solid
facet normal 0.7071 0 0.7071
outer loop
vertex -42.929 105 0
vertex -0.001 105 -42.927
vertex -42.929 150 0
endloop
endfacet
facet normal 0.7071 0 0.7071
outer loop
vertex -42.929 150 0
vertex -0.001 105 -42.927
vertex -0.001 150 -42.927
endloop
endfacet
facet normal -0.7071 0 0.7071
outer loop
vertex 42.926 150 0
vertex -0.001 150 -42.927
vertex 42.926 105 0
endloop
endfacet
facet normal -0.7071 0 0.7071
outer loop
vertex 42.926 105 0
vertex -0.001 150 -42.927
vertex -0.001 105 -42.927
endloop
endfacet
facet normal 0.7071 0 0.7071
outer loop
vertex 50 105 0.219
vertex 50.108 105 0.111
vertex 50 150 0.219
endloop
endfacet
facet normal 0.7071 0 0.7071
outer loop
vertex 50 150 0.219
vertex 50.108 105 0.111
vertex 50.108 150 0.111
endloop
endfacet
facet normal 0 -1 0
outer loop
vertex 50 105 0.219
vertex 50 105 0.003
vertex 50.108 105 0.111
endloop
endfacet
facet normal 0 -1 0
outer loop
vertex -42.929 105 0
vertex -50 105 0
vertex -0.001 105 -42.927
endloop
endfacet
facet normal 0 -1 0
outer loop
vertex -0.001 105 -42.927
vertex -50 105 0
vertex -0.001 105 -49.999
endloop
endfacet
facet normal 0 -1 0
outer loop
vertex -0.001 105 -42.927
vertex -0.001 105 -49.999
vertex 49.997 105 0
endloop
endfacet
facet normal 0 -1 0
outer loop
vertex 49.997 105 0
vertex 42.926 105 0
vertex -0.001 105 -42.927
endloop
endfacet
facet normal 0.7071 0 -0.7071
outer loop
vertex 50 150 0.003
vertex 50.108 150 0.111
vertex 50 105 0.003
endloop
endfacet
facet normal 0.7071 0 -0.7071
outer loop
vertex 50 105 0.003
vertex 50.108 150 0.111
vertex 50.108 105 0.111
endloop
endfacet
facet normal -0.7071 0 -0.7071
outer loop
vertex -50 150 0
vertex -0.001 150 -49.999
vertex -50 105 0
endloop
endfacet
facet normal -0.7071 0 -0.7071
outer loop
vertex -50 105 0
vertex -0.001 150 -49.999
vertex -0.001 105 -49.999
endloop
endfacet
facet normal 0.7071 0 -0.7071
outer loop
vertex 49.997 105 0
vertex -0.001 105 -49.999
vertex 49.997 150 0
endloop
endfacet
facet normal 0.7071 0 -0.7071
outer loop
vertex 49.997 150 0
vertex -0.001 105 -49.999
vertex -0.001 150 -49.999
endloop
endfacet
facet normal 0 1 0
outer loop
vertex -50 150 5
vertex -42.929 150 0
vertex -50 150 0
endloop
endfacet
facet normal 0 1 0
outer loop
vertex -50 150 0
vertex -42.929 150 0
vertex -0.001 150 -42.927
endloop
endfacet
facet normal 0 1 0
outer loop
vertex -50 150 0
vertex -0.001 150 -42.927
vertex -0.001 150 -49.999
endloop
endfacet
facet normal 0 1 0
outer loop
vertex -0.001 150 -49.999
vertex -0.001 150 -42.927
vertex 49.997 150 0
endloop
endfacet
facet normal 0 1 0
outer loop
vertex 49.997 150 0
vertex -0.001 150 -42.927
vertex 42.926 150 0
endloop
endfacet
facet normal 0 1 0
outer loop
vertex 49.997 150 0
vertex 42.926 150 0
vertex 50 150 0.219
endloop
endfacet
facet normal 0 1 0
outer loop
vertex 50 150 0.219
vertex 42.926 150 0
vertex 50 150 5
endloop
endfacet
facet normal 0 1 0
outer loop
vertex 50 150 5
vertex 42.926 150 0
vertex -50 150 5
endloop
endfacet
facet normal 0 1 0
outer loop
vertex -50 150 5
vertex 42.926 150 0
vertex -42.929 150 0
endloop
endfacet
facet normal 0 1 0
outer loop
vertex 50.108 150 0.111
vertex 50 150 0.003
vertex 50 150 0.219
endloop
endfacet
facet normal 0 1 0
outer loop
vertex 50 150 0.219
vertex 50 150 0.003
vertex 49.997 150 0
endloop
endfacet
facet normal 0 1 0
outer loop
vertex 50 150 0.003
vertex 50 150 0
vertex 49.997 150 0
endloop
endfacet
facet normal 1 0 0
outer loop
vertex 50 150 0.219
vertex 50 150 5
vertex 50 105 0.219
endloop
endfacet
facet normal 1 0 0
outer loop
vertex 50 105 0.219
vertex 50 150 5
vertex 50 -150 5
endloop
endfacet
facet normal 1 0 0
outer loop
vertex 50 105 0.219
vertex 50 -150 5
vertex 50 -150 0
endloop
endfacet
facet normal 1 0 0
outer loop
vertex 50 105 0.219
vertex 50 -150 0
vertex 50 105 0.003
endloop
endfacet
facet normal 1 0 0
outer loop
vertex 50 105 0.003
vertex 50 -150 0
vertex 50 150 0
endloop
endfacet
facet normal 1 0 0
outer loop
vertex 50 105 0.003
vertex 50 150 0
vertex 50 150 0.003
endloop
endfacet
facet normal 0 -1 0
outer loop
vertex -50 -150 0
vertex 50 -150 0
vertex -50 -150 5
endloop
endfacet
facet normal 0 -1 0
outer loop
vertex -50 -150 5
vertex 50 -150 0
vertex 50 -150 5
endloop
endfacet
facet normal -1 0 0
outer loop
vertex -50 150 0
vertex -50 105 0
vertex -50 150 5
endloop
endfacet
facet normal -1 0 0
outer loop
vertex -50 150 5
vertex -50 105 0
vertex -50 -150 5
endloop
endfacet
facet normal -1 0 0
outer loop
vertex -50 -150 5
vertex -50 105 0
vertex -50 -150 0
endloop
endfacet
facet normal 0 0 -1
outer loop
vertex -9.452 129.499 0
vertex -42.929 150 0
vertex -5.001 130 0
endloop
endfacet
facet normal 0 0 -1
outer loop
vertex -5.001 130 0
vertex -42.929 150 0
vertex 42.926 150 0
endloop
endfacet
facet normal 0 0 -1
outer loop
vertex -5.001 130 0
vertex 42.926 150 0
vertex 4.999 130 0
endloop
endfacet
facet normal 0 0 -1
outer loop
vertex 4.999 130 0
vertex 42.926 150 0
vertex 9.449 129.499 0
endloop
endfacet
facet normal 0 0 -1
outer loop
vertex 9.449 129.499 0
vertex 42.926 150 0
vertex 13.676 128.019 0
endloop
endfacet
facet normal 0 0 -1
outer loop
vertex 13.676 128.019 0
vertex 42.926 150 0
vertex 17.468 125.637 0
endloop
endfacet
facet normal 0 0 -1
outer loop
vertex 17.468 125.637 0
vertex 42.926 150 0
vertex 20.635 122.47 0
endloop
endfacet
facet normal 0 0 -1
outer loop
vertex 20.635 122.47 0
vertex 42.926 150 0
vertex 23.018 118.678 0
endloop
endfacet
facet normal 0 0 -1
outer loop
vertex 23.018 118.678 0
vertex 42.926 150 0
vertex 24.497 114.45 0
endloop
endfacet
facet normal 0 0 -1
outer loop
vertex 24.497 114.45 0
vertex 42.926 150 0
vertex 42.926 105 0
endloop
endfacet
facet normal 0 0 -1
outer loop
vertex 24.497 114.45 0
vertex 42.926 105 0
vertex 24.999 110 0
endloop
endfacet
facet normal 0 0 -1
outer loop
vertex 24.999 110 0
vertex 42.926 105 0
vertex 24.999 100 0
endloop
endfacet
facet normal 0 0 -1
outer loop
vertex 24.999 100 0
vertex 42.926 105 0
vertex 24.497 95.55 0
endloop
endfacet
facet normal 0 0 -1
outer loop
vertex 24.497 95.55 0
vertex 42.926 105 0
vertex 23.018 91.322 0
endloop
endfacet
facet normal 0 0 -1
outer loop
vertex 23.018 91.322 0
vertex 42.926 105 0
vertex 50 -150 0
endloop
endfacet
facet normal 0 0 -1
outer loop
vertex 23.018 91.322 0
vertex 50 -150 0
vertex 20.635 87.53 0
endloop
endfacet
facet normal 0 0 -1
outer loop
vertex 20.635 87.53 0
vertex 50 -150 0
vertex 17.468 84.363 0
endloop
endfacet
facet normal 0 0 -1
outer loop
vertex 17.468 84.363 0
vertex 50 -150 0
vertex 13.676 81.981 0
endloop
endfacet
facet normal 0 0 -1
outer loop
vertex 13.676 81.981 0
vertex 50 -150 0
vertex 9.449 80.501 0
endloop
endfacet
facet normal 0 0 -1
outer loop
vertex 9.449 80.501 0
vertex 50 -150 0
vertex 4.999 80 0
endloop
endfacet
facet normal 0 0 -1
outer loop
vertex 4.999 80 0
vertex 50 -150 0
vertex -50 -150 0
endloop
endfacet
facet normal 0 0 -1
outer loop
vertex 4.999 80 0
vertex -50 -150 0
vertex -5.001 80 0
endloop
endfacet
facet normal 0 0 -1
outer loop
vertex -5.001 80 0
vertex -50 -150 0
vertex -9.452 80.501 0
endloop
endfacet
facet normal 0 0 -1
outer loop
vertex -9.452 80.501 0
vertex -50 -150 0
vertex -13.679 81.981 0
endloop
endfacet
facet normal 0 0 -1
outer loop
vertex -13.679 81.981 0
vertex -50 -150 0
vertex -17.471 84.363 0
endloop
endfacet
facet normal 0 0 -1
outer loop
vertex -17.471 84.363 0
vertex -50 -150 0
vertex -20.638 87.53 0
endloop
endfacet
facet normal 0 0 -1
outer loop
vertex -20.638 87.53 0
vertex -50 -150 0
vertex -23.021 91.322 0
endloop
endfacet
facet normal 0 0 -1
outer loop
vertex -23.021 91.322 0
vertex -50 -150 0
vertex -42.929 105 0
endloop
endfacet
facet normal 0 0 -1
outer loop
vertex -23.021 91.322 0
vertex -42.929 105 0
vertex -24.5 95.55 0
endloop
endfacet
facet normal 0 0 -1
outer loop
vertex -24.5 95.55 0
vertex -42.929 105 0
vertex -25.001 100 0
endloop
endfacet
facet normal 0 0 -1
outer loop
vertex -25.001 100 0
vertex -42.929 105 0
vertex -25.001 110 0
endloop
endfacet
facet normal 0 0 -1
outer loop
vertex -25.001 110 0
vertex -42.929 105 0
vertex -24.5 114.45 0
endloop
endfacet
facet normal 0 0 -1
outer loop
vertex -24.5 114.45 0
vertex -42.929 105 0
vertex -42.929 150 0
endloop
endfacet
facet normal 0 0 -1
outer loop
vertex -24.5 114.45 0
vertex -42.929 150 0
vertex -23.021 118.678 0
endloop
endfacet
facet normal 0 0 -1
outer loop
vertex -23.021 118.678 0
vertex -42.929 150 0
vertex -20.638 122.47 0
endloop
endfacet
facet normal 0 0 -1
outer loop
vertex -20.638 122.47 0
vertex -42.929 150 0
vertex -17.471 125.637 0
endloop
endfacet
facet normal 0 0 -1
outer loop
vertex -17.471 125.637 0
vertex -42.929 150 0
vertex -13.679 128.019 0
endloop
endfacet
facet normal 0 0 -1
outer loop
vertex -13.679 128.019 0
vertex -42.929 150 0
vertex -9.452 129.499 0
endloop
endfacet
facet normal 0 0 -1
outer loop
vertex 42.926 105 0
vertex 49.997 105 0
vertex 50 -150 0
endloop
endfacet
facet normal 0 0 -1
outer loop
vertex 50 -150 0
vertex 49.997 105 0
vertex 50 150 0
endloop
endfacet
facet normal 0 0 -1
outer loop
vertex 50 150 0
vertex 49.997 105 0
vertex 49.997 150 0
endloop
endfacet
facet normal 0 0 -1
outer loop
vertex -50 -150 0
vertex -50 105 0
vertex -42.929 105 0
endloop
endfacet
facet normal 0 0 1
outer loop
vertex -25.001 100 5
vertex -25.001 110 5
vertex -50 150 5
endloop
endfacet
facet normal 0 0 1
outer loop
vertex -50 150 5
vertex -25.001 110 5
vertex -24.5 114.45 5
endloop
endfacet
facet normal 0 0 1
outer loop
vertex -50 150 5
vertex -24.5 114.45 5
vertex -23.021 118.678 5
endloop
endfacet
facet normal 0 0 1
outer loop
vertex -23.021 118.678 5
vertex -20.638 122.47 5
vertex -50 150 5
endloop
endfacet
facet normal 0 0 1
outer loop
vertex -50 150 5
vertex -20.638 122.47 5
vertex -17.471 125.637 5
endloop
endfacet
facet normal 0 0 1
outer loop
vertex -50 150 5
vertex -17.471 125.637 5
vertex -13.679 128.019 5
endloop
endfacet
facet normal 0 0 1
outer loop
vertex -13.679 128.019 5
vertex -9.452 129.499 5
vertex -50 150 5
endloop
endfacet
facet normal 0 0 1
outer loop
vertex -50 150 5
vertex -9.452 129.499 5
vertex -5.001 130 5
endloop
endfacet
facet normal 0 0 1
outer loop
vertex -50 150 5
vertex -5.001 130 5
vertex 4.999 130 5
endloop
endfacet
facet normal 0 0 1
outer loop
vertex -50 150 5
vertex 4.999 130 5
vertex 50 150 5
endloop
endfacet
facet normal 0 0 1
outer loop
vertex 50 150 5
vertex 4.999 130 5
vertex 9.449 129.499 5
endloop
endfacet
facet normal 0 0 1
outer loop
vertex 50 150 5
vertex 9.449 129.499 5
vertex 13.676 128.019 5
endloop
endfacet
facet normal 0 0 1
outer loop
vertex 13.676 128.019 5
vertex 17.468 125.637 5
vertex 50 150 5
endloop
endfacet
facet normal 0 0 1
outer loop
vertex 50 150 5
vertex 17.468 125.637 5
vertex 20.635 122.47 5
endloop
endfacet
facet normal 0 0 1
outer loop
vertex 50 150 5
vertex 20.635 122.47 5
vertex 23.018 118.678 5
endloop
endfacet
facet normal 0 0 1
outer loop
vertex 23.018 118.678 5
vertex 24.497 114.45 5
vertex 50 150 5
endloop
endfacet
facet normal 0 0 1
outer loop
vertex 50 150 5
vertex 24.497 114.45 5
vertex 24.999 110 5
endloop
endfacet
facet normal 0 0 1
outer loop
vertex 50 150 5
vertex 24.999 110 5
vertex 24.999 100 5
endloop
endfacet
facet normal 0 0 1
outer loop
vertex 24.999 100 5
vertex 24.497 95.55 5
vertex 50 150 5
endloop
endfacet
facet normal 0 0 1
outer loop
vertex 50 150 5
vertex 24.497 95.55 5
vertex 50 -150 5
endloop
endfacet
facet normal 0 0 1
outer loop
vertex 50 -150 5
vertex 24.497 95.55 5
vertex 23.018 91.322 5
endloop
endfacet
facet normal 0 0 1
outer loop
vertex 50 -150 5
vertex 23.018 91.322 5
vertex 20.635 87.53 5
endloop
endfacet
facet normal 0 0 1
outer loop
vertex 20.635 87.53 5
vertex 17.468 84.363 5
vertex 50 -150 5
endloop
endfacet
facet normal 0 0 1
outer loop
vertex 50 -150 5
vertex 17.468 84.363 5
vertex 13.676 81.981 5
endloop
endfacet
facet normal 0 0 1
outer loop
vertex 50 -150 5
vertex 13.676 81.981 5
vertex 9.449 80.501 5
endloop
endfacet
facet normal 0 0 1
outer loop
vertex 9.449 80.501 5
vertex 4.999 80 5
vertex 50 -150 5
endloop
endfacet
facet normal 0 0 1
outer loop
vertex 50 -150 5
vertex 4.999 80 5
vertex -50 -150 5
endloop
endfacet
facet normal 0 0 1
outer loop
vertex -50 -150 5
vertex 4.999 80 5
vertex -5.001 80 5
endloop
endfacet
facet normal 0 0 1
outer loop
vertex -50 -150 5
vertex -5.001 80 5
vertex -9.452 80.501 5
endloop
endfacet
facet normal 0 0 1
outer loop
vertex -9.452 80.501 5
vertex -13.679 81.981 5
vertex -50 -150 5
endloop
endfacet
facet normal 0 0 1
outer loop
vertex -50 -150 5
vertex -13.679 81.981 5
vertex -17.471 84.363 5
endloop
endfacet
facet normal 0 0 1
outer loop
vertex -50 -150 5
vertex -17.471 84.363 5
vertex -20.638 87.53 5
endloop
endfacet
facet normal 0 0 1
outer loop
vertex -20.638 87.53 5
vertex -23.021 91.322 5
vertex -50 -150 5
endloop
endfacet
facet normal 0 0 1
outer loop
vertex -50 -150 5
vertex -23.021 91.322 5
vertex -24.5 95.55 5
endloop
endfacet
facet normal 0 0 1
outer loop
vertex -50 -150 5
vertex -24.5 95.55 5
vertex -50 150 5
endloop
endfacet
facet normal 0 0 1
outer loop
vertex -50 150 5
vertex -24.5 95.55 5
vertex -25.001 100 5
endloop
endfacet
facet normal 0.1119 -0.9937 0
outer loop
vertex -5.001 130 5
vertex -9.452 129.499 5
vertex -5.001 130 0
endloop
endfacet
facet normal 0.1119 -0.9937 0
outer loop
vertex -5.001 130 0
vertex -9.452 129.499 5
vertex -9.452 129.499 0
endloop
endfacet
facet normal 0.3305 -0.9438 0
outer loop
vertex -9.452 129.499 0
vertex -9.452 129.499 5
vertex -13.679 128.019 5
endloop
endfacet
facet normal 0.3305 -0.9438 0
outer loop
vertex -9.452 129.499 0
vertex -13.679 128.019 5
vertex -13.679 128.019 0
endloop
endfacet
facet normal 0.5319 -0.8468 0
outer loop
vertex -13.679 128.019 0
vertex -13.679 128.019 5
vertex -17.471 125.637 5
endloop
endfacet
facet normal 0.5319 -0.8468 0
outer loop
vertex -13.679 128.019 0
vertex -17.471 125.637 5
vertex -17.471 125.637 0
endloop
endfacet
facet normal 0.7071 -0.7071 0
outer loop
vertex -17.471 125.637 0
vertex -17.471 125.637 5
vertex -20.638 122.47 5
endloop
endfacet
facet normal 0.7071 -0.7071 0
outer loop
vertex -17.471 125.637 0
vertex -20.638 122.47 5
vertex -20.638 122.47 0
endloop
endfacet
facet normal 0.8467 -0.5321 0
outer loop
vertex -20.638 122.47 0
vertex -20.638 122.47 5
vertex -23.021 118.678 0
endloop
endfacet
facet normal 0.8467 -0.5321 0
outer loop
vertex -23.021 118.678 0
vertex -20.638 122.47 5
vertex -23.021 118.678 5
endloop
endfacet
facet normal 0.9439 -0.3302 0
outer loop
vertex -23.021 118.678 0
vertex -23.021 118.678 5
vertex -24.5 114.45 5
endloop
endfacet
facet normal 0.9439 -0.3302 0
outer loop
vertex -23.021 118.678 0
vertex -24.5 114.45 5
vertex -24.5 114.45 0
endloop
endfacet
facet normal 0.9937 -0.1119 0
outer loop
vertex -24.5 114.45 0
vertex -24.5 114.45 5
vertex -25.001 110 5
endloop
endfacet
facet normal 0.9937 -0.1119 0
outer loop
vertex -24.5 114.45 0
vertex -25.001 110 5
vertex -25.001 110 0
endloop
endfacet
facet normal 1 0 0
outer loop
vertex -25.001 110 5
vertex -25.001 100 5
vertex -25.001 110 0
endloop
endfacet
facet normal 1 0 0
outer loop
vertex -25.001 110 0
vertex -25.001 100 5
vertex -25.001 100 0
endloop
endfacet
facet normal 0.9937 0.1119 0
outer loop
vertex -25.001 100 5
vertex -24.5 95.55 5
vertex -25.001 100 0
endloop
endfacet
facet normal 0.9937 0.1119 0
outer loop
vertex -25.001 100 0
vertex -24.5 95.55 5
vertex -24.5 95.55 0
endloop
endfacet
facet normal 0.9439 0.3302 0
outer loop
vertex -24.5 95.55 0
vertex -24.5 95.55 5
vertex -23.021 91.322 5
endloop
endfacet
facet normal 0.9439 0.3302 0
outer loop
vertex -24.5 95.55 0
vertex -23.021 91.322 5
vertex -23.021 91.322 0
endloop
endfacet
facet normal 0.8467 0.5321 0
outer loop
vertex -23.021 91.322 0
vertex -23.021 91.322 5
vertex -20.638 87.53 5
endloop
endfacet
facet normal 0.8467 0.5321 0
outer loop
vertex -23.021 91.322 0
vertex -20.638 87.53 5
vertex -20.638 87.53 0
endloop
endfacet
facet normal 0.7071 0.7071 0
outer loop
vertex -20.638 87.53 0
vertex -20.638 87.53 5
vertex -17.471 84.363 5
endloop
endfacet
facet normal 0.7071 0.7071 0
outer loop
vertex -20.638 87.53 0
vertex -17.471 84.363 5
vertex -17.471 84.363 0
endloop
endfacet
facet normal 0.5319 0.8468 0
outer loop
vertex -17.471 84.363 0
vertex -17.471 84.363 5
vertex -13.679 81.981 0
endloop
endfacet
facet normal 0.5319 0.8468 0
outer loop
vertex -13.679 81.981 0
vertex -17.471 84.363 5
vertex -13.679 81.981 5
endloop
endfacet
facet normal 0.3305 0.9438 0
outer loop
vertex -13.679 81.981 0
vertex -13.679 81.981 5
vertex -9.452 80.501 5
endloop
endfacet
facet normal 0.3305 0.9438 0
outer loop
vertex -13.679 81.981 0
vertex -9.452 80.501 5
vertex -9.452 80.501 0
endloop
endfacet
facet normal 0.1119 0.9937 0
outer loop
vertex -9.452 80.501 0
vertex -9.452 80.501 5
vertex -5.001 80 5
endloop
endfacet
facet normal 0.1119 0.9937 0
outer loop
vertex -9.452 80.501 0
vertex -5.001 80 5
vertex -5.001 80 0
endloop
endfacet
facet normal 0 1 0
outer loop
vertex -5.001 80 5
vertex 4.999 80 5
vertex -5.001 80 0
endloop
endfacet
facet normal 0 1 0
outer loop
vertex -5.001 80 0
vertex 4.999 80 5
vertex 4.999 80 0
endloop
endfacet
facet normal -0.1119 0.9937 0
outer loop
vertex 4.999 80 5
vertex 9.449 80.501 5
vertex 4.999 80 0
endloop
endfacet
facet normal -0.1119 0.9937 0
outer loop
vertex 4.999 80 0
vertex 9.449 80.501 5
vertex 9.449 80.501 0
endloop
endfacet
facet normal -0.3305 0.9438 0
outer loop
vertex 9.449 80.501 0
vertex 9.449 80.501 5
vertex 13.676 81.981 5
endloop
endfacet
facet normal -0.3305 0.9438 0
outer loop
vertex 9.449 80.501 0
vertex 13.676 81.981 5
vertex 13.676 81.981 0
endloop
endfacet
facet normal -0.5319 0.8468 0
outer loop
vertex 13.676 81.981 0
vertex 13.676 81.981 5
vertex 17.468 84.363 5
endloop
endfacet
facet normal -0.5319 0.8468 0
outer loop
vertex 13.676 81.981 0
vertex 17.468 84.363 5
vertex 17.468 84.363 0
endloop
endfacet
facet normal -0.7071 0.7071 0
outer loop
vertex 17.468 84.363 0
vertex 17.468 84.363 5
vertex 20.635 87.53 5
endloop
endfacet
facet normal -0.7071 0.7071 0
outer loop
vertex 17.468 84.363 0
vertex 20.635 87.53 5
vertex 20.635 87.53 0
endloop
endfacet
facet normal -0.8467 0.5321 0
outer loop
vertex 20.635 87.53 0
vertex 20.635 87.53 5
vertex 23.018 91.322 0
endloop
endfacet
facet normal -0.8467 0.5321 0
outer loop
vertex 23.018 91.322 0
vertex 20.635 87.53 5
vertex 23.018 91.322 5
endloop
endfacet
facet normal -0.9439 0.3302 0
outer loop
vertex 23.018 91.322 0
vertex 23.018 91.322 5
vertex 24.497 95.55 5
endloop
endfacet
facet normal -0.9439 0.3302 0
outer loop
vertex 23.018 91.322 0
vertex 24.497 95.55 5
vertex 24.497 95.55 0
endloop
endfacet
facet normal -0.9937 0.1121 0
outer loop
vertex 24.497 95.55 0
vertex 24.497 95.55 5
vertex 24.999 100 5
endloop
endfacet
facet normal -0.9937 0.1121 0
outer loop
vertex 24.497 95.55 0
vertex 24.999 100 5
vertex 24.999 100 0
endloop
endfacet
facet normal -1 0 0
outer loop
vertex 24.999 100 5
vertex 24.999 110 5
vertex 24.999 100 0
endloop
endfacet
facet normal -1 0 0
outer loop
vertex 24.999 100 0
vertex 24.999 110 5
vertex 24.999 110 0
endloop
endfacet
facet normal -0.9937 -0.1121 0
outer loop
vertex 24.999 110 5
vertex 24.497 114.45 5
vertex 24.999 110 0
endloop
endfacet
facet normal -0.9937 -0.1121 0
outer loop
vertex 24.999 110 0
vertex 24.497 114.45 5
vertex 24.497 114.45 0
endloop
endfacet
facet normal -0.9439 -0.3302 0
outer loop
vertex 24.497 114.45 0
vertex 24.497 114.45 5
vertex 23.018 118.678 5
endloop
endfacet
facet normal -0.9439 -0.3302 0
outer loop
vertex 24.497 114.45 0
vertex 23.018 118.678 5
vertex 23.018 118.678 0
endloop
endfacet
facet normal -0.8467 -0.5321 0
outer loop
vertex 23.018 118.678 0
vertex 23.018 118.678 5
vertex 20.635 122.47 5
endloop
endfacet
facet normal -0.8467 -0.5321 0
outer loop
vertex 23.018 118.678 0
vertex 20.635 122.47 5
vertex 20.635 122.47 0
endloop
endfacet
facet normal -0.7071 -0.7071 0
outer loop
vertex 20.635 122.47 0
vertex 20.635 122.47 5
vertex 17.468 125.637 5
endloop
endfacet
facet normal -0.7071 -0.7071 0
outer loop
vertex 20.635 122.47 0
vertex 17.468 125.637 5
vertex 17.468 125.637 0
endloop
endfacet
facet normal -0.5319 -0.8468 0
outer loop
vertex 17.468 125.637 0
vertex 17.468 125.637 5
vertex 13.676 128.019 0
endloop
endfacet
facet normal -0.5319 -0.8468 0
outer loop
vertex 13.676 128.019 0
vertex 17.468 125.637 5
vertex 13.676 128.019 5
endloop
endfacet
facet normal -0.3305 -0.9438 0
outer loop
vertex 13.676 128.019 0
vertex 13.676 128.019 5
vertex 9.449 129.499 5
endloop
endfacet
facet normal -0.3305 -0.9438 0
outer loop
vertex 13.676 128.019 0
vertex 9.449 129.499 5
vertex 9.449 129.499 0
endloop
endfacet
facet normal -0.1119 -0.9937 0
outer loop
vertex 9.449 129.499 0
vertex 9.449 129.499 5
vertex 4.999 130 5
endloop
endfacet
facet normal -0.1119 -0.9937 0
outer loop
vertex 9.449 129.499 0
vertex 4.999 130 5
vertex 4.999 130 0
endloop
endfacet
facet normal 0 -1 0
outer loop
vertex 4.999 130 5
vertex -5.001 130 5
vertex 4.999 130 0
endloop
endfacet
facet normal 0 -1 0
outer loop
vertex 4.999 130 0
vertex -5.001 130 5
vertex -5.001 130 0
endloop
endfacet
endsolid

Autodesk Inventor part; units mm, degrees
ref_plane "YZ Plane" through (0, 0, 0) normal (1, 0, 0) x (0, 1, 0)
ref_plane "XZ Plane" through (0, 0, 0) normal (0, 1, 0) x (-1, 0, 0)
ref_plane "XY Plane" through (0, 0, 0) normal (0, 0, 1) x (1, 0, 0)
sketch "Sketch1" plane through (0, 0, 0) normal (0, 0, 1) x (1, 0, 0)
  line L0 (-50, -150) -> (50, -150)
  line L1 (50, -150) -> (50, 150)
  line L2 (50, 150) -> (-50, 150)
  line L3 (-50, 150) -> (-50, -150)
  line L4 (-50, -150) -> (50, 150) construction
  line L5 (50, -150) -> (-50, 150) construction
  point P0 (0, 0)
  dimension "d0" = 100
  dimension "d1" = 300
extrude "Extrusion1" add sketch "Sketch1" along normal blind 5
sketch "Sketch2" plane through (-50, 150, 0) normal (0, 1, 0) x (1, 0, 0)
  line L0 (0, 0) -> (100, 0) projected
  line L1 (0, 0) -> (49.9986, 49.9986)
  line L2 (49.9986, 49.9986) -> (53.5341, 46.463)
  line L3 (53.5341, 46.463) -> (3.5355, -3.5355)
  line L4 (3.5355, -3.5355) -> (0, 0)
  line L5 (0, 0) -> (70.7086, 0) construction
  line L6 (100.108, -0.1109) -> (53.5341, 46.463)
  line L7 (53.5341, 46.463) -> (49.9986, 42.9275)
  line L8 (49.9986, 42.9275) -> (96.5724, -3.6464)
  line L9 (96.5724, -3.6464) -> (100.108, -0.1109)
  point P0 (50, 0)
  point P1 (49.9986, 42.9275)
  dimension "d4" = 45
  dimension "d5" = 5
  dimension "d6" = 5
extrude "Extrusion2" add sketch "Sketch2" against normal blind 45 contours L1 L2 L3 L0 | L0 L3 L4 | L8 L3 L6 L0 | L0 L6 L9 L8
sketch "Sketch6" plane through (0, 0, 5) normal (0, 0, 1) x (1, 0, 0)
  line L0 (4.9986, 80) -> (-5.0014, 80)
  line L1 (-25.0014, 100) -> (-25.0014, 110)
  line L2 (-5.0014, 130) -> (4.9986, 130)
  line L3 (24.9986, 110) -> (24.9986, 100)
  line L4 (-0.0014, 150) -> (-0.0014, 105) projected
  line L5 (24.9986, 80) -> (-25.0014, 130) construction
  line L6 (-25.0014, 80) -> (24.9986, 130) construction
  arc A0 (4.9986, 80) -> (24.9986, 100) centre (4.9986, 100) ccw
  arc A1 (24.9986, 110) -> (4.9986, 130) centre (4.9986, 110) ccw
  arc A2 (-5.0014, 130) -> (-25.0014, 110) centre (-5.0014, 110) ccw
  arc A3 (-25.0014, 100) -> (-5.0014, 80) centre (-5.0014, 100) ccw
  point P0 (0, 0)
  dimension "d21" = 50
  dimension "d22" = 50
  dimension "d23" = 20
extrude "Extrusion6" cut sketch "Sketch6" against normal blind 5
properties part number "fixation_v05"
